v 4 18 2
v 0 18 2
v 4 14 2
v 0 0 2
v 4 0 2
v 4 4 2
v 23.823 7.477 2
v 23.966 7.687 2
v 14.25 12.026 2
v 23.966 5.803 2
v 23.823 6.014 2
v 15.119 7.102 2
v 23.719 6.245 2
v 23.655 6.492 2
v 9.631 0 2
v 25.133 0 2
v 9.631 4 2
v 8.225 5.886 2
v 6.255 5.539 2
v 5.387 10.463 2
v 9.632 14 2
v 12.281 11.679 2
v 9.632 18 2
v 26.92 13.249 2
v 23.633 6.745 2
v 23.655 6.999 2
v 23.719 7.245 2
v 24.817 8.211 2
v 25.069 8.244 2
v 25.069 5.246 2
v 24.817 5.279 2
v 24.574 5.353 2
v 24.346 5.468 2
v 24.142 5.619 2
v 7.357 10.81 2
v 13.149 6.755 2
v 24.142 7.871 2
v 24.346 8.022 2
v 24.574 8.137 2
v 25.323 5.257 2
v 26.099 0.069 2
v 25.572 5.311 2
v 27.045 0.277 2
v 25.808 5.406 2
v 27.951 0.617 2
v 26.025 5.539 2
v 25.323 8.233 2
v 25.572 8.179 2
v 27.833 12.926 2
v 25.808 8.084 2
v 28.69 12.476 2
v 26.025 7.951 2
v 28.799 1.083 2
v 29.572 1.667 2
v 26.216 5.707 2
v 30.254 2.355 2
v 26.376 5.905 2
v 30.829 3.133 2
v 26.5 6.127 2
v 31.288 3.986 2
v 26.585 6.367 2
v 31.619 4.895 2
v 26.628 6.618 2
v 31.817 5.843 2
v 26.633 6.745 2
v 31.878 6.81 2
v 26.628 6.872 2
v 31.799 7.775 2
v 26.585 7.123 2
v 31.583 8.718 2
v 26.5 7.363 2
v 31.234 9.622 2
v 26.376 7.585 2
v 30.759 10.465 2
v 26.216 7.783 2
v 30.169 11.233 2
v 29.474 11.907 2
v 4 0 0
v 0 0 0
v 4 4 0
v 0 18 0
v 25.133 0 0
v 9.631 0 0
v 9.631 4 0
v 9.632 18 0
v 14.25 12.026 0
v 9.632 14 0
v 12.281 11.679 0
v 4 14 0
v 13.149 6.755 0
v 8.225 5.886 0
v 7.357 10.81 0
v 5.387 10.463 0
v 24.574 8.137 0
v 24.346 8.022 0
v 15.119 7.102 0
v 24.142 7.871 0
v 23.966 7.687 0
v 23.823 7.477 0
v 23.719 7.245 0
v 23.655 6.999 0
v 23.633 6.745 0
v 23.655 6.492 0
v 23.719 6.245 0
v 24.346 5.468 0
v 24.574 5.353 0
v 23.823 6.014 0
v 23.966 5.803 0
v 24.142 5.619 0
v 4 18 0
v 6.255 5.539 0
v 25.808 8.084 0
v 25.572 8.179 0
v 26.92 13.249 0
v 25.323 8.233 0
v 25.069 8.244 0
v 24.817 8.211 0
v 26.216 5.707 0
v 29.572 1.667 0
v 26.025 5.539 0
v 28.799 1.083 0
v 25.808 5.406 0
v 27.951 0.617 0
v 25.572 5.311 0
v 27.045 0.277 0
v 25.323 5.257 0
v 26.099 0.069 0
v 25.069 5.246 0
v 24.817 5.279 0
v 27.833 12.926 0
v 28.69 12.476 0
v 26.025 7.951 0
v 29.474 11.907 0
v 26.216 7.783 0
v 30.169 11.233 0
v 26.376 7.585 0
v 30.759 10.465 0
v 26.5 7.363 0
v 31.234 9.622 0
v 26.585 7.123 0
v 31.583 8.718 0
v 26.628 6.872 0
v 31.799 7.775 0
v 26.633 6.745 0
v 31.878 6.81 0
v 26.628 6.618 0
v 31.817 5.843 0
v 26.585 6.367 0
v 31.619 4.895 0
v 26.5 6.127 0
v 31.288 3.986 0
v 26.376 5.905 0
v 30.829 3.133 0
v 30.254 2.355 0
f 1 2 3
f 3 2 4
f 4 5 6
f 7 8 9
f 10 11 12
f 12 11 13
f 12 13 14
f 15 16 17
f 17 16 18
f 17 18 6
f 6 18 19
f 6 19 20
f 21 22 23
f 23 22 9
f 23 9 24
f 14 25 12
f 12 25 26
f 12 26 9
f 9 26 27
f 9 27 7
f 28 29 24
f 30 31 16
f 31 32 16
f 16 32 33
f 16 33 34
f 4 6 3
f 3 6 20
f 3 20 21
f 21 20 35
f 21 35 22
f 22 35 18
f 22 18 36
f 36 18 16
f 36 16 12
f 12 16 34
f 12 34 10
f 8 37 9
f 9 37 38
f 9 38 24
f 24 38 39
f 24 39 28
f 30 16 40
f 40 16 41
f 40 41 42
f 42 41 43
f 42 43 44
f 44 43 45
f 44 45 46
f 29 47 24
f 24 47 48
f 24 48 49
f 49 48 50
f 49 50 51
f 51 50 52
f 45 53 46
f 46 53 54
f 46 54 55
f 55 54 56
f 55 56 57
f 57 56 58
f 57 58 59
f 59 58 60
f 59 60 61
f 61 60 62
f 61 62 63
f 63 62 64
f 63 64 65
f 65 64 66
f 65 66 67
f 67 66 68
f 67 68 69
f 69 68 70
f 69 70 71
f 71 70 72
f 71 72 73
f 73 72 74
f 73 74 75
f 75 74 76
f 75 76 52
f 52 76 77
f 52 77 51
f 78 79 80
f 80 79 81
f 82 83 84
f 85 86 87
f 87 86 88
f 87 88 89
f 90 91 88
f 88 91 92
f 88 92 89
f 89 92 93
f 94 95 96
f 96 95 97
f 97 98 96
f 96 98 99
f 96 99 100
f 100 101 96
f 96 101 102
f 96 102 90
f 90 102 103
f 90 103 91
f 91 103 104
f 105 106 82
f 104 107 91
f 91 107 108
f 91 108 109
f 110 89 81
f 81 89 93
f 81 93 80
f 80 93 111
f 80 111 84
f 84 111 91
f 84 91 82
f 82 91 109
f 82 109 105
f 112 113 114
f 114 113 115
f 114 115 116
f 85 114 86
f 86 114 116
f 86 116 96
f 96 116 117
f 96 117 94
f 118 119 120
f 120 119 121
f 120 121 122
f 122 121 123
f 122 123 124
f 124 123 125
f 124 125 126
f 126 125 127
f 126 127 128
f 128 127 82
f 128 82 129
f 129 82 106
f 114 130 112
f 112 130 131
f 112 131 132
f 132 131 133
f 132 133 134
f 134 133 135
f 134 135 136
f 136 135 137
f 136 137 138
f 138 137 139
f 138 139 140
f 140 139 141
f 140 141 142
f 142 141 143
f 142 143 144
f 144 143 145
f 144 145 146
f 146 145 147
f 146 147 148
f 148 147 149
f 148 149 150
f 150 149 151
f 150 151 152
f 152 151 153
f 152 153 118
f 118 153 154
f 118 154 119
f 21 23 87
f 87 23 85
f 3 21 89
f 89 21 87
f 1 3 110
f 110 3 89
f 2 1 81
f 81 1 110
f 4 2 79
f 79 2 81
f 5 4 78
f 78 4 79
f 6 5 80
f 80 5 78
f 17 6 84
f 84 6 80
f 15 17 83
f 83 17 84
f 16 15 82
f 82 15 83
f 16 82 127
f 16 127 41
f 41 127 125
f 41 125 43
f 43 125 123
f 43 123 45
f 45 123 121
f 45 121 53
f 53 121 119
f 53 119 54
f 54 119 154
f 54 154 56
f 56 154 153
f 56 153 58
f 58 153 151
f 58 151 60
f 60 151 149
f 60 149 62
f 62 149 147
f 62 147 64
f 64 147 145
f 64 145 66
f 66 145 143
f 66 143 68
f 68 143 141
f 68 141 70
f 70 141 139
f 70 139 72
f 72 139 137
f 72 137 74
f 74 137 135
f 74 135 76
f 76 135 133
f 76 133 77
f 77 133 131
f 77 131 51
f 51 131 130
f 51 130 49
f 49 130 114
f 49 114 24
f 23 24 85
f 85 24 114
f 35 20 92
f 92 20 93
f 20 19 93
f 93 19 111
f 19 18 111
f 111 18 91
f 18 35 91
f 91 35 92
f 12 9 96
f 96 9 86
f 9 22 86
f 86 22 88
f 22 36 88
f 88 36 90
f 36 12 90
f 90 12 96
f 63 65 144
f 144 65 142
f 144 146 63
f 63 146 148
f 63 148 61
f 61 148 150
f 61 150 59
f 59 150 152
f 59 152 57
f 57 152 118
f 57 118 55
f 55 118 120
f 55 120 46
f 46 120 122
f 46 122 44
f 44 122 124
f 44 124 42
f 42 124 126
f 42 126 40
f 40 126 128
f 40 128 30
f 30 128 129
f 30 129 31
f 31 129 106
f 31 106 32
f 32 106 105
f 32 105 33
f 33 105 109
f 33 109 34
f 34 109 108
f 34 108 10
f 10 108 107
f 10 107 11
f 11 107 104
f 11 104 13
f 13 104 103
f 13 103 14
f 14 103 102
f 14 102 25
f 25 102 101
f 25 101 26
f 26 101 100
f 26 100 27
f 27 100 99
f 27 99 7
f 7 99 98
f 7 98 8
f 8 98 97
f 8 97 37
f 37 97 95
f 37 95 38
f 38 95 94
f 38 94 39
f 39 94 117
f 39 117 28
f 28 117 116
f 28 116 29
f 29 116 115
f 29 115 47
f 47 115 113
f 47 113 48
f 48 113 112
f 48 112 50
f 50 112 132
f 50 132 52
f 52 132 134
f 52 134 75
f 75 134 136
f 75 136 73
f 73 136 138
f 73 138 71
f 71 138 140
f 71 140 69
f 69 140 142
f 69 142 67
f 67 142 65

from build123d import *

# Parameters (mm, degrees)
SKETCH1_R           = 1.5
BOSS_EXTRUDE1_DEPTH = 2


with BuildPart() as part:
    # Sketch1 → Boss-Extrude1 (new body)
    with BuildSketch(Plane.XY):
        with BuildLine():
            Line((0, 0), (0, 18))
            Line((0, 18), (4, 17.99998836))
            Line((4, 17.99998836), (3.999996862, 13.99998836))
            Line((3.999996862, 13.99998836), (9.631513212, 13.99998836))
            Line((9.631513212, 13.99998836), (9.631513212, 17.99998836))
            Line((9.631513212, 17.99998836), (26.920387768, 13.248592057))
            ThreePointArc((26.920387768, 13.248592057), (31.81744671, 5.842881132), (25.13296029, -0.000352724))
            Line((25.13296029, -0.000352724), (9.631467627, -0.000352724))
            Line((9.631467627, -0.000352724), (9.631467627, 3.999647276))
            Line((9.631467627, 3.999647276), (4, 3.999647276))
            Line((4, 3.999647276), (4, 0))
            Line((4, 0), (0, 0))
        make_face()
        with Locations((25.13296029, 6.744691419)):
            Circle(SKETCH1_R, mode=Mode.SUBTRACT)
        Polygon((14.250450019, 12.02557168), (12.280834513, 11.678275325), (13.149075402, 6.75423656), (15.118690908, 7.101532915), align=None, mode=Mode.SUBTRACT)
        Polygon((7.356795748, 10.810034437), (8.225036637, 5.885995672), (6.255421131, 5.538699316), (5.387180242, 10.462738081), align=None, mode=Mode.SUBTRACT)
    extrude(amount=BOSS_EXTRUDE1_DEPTH)


solid = part.part
